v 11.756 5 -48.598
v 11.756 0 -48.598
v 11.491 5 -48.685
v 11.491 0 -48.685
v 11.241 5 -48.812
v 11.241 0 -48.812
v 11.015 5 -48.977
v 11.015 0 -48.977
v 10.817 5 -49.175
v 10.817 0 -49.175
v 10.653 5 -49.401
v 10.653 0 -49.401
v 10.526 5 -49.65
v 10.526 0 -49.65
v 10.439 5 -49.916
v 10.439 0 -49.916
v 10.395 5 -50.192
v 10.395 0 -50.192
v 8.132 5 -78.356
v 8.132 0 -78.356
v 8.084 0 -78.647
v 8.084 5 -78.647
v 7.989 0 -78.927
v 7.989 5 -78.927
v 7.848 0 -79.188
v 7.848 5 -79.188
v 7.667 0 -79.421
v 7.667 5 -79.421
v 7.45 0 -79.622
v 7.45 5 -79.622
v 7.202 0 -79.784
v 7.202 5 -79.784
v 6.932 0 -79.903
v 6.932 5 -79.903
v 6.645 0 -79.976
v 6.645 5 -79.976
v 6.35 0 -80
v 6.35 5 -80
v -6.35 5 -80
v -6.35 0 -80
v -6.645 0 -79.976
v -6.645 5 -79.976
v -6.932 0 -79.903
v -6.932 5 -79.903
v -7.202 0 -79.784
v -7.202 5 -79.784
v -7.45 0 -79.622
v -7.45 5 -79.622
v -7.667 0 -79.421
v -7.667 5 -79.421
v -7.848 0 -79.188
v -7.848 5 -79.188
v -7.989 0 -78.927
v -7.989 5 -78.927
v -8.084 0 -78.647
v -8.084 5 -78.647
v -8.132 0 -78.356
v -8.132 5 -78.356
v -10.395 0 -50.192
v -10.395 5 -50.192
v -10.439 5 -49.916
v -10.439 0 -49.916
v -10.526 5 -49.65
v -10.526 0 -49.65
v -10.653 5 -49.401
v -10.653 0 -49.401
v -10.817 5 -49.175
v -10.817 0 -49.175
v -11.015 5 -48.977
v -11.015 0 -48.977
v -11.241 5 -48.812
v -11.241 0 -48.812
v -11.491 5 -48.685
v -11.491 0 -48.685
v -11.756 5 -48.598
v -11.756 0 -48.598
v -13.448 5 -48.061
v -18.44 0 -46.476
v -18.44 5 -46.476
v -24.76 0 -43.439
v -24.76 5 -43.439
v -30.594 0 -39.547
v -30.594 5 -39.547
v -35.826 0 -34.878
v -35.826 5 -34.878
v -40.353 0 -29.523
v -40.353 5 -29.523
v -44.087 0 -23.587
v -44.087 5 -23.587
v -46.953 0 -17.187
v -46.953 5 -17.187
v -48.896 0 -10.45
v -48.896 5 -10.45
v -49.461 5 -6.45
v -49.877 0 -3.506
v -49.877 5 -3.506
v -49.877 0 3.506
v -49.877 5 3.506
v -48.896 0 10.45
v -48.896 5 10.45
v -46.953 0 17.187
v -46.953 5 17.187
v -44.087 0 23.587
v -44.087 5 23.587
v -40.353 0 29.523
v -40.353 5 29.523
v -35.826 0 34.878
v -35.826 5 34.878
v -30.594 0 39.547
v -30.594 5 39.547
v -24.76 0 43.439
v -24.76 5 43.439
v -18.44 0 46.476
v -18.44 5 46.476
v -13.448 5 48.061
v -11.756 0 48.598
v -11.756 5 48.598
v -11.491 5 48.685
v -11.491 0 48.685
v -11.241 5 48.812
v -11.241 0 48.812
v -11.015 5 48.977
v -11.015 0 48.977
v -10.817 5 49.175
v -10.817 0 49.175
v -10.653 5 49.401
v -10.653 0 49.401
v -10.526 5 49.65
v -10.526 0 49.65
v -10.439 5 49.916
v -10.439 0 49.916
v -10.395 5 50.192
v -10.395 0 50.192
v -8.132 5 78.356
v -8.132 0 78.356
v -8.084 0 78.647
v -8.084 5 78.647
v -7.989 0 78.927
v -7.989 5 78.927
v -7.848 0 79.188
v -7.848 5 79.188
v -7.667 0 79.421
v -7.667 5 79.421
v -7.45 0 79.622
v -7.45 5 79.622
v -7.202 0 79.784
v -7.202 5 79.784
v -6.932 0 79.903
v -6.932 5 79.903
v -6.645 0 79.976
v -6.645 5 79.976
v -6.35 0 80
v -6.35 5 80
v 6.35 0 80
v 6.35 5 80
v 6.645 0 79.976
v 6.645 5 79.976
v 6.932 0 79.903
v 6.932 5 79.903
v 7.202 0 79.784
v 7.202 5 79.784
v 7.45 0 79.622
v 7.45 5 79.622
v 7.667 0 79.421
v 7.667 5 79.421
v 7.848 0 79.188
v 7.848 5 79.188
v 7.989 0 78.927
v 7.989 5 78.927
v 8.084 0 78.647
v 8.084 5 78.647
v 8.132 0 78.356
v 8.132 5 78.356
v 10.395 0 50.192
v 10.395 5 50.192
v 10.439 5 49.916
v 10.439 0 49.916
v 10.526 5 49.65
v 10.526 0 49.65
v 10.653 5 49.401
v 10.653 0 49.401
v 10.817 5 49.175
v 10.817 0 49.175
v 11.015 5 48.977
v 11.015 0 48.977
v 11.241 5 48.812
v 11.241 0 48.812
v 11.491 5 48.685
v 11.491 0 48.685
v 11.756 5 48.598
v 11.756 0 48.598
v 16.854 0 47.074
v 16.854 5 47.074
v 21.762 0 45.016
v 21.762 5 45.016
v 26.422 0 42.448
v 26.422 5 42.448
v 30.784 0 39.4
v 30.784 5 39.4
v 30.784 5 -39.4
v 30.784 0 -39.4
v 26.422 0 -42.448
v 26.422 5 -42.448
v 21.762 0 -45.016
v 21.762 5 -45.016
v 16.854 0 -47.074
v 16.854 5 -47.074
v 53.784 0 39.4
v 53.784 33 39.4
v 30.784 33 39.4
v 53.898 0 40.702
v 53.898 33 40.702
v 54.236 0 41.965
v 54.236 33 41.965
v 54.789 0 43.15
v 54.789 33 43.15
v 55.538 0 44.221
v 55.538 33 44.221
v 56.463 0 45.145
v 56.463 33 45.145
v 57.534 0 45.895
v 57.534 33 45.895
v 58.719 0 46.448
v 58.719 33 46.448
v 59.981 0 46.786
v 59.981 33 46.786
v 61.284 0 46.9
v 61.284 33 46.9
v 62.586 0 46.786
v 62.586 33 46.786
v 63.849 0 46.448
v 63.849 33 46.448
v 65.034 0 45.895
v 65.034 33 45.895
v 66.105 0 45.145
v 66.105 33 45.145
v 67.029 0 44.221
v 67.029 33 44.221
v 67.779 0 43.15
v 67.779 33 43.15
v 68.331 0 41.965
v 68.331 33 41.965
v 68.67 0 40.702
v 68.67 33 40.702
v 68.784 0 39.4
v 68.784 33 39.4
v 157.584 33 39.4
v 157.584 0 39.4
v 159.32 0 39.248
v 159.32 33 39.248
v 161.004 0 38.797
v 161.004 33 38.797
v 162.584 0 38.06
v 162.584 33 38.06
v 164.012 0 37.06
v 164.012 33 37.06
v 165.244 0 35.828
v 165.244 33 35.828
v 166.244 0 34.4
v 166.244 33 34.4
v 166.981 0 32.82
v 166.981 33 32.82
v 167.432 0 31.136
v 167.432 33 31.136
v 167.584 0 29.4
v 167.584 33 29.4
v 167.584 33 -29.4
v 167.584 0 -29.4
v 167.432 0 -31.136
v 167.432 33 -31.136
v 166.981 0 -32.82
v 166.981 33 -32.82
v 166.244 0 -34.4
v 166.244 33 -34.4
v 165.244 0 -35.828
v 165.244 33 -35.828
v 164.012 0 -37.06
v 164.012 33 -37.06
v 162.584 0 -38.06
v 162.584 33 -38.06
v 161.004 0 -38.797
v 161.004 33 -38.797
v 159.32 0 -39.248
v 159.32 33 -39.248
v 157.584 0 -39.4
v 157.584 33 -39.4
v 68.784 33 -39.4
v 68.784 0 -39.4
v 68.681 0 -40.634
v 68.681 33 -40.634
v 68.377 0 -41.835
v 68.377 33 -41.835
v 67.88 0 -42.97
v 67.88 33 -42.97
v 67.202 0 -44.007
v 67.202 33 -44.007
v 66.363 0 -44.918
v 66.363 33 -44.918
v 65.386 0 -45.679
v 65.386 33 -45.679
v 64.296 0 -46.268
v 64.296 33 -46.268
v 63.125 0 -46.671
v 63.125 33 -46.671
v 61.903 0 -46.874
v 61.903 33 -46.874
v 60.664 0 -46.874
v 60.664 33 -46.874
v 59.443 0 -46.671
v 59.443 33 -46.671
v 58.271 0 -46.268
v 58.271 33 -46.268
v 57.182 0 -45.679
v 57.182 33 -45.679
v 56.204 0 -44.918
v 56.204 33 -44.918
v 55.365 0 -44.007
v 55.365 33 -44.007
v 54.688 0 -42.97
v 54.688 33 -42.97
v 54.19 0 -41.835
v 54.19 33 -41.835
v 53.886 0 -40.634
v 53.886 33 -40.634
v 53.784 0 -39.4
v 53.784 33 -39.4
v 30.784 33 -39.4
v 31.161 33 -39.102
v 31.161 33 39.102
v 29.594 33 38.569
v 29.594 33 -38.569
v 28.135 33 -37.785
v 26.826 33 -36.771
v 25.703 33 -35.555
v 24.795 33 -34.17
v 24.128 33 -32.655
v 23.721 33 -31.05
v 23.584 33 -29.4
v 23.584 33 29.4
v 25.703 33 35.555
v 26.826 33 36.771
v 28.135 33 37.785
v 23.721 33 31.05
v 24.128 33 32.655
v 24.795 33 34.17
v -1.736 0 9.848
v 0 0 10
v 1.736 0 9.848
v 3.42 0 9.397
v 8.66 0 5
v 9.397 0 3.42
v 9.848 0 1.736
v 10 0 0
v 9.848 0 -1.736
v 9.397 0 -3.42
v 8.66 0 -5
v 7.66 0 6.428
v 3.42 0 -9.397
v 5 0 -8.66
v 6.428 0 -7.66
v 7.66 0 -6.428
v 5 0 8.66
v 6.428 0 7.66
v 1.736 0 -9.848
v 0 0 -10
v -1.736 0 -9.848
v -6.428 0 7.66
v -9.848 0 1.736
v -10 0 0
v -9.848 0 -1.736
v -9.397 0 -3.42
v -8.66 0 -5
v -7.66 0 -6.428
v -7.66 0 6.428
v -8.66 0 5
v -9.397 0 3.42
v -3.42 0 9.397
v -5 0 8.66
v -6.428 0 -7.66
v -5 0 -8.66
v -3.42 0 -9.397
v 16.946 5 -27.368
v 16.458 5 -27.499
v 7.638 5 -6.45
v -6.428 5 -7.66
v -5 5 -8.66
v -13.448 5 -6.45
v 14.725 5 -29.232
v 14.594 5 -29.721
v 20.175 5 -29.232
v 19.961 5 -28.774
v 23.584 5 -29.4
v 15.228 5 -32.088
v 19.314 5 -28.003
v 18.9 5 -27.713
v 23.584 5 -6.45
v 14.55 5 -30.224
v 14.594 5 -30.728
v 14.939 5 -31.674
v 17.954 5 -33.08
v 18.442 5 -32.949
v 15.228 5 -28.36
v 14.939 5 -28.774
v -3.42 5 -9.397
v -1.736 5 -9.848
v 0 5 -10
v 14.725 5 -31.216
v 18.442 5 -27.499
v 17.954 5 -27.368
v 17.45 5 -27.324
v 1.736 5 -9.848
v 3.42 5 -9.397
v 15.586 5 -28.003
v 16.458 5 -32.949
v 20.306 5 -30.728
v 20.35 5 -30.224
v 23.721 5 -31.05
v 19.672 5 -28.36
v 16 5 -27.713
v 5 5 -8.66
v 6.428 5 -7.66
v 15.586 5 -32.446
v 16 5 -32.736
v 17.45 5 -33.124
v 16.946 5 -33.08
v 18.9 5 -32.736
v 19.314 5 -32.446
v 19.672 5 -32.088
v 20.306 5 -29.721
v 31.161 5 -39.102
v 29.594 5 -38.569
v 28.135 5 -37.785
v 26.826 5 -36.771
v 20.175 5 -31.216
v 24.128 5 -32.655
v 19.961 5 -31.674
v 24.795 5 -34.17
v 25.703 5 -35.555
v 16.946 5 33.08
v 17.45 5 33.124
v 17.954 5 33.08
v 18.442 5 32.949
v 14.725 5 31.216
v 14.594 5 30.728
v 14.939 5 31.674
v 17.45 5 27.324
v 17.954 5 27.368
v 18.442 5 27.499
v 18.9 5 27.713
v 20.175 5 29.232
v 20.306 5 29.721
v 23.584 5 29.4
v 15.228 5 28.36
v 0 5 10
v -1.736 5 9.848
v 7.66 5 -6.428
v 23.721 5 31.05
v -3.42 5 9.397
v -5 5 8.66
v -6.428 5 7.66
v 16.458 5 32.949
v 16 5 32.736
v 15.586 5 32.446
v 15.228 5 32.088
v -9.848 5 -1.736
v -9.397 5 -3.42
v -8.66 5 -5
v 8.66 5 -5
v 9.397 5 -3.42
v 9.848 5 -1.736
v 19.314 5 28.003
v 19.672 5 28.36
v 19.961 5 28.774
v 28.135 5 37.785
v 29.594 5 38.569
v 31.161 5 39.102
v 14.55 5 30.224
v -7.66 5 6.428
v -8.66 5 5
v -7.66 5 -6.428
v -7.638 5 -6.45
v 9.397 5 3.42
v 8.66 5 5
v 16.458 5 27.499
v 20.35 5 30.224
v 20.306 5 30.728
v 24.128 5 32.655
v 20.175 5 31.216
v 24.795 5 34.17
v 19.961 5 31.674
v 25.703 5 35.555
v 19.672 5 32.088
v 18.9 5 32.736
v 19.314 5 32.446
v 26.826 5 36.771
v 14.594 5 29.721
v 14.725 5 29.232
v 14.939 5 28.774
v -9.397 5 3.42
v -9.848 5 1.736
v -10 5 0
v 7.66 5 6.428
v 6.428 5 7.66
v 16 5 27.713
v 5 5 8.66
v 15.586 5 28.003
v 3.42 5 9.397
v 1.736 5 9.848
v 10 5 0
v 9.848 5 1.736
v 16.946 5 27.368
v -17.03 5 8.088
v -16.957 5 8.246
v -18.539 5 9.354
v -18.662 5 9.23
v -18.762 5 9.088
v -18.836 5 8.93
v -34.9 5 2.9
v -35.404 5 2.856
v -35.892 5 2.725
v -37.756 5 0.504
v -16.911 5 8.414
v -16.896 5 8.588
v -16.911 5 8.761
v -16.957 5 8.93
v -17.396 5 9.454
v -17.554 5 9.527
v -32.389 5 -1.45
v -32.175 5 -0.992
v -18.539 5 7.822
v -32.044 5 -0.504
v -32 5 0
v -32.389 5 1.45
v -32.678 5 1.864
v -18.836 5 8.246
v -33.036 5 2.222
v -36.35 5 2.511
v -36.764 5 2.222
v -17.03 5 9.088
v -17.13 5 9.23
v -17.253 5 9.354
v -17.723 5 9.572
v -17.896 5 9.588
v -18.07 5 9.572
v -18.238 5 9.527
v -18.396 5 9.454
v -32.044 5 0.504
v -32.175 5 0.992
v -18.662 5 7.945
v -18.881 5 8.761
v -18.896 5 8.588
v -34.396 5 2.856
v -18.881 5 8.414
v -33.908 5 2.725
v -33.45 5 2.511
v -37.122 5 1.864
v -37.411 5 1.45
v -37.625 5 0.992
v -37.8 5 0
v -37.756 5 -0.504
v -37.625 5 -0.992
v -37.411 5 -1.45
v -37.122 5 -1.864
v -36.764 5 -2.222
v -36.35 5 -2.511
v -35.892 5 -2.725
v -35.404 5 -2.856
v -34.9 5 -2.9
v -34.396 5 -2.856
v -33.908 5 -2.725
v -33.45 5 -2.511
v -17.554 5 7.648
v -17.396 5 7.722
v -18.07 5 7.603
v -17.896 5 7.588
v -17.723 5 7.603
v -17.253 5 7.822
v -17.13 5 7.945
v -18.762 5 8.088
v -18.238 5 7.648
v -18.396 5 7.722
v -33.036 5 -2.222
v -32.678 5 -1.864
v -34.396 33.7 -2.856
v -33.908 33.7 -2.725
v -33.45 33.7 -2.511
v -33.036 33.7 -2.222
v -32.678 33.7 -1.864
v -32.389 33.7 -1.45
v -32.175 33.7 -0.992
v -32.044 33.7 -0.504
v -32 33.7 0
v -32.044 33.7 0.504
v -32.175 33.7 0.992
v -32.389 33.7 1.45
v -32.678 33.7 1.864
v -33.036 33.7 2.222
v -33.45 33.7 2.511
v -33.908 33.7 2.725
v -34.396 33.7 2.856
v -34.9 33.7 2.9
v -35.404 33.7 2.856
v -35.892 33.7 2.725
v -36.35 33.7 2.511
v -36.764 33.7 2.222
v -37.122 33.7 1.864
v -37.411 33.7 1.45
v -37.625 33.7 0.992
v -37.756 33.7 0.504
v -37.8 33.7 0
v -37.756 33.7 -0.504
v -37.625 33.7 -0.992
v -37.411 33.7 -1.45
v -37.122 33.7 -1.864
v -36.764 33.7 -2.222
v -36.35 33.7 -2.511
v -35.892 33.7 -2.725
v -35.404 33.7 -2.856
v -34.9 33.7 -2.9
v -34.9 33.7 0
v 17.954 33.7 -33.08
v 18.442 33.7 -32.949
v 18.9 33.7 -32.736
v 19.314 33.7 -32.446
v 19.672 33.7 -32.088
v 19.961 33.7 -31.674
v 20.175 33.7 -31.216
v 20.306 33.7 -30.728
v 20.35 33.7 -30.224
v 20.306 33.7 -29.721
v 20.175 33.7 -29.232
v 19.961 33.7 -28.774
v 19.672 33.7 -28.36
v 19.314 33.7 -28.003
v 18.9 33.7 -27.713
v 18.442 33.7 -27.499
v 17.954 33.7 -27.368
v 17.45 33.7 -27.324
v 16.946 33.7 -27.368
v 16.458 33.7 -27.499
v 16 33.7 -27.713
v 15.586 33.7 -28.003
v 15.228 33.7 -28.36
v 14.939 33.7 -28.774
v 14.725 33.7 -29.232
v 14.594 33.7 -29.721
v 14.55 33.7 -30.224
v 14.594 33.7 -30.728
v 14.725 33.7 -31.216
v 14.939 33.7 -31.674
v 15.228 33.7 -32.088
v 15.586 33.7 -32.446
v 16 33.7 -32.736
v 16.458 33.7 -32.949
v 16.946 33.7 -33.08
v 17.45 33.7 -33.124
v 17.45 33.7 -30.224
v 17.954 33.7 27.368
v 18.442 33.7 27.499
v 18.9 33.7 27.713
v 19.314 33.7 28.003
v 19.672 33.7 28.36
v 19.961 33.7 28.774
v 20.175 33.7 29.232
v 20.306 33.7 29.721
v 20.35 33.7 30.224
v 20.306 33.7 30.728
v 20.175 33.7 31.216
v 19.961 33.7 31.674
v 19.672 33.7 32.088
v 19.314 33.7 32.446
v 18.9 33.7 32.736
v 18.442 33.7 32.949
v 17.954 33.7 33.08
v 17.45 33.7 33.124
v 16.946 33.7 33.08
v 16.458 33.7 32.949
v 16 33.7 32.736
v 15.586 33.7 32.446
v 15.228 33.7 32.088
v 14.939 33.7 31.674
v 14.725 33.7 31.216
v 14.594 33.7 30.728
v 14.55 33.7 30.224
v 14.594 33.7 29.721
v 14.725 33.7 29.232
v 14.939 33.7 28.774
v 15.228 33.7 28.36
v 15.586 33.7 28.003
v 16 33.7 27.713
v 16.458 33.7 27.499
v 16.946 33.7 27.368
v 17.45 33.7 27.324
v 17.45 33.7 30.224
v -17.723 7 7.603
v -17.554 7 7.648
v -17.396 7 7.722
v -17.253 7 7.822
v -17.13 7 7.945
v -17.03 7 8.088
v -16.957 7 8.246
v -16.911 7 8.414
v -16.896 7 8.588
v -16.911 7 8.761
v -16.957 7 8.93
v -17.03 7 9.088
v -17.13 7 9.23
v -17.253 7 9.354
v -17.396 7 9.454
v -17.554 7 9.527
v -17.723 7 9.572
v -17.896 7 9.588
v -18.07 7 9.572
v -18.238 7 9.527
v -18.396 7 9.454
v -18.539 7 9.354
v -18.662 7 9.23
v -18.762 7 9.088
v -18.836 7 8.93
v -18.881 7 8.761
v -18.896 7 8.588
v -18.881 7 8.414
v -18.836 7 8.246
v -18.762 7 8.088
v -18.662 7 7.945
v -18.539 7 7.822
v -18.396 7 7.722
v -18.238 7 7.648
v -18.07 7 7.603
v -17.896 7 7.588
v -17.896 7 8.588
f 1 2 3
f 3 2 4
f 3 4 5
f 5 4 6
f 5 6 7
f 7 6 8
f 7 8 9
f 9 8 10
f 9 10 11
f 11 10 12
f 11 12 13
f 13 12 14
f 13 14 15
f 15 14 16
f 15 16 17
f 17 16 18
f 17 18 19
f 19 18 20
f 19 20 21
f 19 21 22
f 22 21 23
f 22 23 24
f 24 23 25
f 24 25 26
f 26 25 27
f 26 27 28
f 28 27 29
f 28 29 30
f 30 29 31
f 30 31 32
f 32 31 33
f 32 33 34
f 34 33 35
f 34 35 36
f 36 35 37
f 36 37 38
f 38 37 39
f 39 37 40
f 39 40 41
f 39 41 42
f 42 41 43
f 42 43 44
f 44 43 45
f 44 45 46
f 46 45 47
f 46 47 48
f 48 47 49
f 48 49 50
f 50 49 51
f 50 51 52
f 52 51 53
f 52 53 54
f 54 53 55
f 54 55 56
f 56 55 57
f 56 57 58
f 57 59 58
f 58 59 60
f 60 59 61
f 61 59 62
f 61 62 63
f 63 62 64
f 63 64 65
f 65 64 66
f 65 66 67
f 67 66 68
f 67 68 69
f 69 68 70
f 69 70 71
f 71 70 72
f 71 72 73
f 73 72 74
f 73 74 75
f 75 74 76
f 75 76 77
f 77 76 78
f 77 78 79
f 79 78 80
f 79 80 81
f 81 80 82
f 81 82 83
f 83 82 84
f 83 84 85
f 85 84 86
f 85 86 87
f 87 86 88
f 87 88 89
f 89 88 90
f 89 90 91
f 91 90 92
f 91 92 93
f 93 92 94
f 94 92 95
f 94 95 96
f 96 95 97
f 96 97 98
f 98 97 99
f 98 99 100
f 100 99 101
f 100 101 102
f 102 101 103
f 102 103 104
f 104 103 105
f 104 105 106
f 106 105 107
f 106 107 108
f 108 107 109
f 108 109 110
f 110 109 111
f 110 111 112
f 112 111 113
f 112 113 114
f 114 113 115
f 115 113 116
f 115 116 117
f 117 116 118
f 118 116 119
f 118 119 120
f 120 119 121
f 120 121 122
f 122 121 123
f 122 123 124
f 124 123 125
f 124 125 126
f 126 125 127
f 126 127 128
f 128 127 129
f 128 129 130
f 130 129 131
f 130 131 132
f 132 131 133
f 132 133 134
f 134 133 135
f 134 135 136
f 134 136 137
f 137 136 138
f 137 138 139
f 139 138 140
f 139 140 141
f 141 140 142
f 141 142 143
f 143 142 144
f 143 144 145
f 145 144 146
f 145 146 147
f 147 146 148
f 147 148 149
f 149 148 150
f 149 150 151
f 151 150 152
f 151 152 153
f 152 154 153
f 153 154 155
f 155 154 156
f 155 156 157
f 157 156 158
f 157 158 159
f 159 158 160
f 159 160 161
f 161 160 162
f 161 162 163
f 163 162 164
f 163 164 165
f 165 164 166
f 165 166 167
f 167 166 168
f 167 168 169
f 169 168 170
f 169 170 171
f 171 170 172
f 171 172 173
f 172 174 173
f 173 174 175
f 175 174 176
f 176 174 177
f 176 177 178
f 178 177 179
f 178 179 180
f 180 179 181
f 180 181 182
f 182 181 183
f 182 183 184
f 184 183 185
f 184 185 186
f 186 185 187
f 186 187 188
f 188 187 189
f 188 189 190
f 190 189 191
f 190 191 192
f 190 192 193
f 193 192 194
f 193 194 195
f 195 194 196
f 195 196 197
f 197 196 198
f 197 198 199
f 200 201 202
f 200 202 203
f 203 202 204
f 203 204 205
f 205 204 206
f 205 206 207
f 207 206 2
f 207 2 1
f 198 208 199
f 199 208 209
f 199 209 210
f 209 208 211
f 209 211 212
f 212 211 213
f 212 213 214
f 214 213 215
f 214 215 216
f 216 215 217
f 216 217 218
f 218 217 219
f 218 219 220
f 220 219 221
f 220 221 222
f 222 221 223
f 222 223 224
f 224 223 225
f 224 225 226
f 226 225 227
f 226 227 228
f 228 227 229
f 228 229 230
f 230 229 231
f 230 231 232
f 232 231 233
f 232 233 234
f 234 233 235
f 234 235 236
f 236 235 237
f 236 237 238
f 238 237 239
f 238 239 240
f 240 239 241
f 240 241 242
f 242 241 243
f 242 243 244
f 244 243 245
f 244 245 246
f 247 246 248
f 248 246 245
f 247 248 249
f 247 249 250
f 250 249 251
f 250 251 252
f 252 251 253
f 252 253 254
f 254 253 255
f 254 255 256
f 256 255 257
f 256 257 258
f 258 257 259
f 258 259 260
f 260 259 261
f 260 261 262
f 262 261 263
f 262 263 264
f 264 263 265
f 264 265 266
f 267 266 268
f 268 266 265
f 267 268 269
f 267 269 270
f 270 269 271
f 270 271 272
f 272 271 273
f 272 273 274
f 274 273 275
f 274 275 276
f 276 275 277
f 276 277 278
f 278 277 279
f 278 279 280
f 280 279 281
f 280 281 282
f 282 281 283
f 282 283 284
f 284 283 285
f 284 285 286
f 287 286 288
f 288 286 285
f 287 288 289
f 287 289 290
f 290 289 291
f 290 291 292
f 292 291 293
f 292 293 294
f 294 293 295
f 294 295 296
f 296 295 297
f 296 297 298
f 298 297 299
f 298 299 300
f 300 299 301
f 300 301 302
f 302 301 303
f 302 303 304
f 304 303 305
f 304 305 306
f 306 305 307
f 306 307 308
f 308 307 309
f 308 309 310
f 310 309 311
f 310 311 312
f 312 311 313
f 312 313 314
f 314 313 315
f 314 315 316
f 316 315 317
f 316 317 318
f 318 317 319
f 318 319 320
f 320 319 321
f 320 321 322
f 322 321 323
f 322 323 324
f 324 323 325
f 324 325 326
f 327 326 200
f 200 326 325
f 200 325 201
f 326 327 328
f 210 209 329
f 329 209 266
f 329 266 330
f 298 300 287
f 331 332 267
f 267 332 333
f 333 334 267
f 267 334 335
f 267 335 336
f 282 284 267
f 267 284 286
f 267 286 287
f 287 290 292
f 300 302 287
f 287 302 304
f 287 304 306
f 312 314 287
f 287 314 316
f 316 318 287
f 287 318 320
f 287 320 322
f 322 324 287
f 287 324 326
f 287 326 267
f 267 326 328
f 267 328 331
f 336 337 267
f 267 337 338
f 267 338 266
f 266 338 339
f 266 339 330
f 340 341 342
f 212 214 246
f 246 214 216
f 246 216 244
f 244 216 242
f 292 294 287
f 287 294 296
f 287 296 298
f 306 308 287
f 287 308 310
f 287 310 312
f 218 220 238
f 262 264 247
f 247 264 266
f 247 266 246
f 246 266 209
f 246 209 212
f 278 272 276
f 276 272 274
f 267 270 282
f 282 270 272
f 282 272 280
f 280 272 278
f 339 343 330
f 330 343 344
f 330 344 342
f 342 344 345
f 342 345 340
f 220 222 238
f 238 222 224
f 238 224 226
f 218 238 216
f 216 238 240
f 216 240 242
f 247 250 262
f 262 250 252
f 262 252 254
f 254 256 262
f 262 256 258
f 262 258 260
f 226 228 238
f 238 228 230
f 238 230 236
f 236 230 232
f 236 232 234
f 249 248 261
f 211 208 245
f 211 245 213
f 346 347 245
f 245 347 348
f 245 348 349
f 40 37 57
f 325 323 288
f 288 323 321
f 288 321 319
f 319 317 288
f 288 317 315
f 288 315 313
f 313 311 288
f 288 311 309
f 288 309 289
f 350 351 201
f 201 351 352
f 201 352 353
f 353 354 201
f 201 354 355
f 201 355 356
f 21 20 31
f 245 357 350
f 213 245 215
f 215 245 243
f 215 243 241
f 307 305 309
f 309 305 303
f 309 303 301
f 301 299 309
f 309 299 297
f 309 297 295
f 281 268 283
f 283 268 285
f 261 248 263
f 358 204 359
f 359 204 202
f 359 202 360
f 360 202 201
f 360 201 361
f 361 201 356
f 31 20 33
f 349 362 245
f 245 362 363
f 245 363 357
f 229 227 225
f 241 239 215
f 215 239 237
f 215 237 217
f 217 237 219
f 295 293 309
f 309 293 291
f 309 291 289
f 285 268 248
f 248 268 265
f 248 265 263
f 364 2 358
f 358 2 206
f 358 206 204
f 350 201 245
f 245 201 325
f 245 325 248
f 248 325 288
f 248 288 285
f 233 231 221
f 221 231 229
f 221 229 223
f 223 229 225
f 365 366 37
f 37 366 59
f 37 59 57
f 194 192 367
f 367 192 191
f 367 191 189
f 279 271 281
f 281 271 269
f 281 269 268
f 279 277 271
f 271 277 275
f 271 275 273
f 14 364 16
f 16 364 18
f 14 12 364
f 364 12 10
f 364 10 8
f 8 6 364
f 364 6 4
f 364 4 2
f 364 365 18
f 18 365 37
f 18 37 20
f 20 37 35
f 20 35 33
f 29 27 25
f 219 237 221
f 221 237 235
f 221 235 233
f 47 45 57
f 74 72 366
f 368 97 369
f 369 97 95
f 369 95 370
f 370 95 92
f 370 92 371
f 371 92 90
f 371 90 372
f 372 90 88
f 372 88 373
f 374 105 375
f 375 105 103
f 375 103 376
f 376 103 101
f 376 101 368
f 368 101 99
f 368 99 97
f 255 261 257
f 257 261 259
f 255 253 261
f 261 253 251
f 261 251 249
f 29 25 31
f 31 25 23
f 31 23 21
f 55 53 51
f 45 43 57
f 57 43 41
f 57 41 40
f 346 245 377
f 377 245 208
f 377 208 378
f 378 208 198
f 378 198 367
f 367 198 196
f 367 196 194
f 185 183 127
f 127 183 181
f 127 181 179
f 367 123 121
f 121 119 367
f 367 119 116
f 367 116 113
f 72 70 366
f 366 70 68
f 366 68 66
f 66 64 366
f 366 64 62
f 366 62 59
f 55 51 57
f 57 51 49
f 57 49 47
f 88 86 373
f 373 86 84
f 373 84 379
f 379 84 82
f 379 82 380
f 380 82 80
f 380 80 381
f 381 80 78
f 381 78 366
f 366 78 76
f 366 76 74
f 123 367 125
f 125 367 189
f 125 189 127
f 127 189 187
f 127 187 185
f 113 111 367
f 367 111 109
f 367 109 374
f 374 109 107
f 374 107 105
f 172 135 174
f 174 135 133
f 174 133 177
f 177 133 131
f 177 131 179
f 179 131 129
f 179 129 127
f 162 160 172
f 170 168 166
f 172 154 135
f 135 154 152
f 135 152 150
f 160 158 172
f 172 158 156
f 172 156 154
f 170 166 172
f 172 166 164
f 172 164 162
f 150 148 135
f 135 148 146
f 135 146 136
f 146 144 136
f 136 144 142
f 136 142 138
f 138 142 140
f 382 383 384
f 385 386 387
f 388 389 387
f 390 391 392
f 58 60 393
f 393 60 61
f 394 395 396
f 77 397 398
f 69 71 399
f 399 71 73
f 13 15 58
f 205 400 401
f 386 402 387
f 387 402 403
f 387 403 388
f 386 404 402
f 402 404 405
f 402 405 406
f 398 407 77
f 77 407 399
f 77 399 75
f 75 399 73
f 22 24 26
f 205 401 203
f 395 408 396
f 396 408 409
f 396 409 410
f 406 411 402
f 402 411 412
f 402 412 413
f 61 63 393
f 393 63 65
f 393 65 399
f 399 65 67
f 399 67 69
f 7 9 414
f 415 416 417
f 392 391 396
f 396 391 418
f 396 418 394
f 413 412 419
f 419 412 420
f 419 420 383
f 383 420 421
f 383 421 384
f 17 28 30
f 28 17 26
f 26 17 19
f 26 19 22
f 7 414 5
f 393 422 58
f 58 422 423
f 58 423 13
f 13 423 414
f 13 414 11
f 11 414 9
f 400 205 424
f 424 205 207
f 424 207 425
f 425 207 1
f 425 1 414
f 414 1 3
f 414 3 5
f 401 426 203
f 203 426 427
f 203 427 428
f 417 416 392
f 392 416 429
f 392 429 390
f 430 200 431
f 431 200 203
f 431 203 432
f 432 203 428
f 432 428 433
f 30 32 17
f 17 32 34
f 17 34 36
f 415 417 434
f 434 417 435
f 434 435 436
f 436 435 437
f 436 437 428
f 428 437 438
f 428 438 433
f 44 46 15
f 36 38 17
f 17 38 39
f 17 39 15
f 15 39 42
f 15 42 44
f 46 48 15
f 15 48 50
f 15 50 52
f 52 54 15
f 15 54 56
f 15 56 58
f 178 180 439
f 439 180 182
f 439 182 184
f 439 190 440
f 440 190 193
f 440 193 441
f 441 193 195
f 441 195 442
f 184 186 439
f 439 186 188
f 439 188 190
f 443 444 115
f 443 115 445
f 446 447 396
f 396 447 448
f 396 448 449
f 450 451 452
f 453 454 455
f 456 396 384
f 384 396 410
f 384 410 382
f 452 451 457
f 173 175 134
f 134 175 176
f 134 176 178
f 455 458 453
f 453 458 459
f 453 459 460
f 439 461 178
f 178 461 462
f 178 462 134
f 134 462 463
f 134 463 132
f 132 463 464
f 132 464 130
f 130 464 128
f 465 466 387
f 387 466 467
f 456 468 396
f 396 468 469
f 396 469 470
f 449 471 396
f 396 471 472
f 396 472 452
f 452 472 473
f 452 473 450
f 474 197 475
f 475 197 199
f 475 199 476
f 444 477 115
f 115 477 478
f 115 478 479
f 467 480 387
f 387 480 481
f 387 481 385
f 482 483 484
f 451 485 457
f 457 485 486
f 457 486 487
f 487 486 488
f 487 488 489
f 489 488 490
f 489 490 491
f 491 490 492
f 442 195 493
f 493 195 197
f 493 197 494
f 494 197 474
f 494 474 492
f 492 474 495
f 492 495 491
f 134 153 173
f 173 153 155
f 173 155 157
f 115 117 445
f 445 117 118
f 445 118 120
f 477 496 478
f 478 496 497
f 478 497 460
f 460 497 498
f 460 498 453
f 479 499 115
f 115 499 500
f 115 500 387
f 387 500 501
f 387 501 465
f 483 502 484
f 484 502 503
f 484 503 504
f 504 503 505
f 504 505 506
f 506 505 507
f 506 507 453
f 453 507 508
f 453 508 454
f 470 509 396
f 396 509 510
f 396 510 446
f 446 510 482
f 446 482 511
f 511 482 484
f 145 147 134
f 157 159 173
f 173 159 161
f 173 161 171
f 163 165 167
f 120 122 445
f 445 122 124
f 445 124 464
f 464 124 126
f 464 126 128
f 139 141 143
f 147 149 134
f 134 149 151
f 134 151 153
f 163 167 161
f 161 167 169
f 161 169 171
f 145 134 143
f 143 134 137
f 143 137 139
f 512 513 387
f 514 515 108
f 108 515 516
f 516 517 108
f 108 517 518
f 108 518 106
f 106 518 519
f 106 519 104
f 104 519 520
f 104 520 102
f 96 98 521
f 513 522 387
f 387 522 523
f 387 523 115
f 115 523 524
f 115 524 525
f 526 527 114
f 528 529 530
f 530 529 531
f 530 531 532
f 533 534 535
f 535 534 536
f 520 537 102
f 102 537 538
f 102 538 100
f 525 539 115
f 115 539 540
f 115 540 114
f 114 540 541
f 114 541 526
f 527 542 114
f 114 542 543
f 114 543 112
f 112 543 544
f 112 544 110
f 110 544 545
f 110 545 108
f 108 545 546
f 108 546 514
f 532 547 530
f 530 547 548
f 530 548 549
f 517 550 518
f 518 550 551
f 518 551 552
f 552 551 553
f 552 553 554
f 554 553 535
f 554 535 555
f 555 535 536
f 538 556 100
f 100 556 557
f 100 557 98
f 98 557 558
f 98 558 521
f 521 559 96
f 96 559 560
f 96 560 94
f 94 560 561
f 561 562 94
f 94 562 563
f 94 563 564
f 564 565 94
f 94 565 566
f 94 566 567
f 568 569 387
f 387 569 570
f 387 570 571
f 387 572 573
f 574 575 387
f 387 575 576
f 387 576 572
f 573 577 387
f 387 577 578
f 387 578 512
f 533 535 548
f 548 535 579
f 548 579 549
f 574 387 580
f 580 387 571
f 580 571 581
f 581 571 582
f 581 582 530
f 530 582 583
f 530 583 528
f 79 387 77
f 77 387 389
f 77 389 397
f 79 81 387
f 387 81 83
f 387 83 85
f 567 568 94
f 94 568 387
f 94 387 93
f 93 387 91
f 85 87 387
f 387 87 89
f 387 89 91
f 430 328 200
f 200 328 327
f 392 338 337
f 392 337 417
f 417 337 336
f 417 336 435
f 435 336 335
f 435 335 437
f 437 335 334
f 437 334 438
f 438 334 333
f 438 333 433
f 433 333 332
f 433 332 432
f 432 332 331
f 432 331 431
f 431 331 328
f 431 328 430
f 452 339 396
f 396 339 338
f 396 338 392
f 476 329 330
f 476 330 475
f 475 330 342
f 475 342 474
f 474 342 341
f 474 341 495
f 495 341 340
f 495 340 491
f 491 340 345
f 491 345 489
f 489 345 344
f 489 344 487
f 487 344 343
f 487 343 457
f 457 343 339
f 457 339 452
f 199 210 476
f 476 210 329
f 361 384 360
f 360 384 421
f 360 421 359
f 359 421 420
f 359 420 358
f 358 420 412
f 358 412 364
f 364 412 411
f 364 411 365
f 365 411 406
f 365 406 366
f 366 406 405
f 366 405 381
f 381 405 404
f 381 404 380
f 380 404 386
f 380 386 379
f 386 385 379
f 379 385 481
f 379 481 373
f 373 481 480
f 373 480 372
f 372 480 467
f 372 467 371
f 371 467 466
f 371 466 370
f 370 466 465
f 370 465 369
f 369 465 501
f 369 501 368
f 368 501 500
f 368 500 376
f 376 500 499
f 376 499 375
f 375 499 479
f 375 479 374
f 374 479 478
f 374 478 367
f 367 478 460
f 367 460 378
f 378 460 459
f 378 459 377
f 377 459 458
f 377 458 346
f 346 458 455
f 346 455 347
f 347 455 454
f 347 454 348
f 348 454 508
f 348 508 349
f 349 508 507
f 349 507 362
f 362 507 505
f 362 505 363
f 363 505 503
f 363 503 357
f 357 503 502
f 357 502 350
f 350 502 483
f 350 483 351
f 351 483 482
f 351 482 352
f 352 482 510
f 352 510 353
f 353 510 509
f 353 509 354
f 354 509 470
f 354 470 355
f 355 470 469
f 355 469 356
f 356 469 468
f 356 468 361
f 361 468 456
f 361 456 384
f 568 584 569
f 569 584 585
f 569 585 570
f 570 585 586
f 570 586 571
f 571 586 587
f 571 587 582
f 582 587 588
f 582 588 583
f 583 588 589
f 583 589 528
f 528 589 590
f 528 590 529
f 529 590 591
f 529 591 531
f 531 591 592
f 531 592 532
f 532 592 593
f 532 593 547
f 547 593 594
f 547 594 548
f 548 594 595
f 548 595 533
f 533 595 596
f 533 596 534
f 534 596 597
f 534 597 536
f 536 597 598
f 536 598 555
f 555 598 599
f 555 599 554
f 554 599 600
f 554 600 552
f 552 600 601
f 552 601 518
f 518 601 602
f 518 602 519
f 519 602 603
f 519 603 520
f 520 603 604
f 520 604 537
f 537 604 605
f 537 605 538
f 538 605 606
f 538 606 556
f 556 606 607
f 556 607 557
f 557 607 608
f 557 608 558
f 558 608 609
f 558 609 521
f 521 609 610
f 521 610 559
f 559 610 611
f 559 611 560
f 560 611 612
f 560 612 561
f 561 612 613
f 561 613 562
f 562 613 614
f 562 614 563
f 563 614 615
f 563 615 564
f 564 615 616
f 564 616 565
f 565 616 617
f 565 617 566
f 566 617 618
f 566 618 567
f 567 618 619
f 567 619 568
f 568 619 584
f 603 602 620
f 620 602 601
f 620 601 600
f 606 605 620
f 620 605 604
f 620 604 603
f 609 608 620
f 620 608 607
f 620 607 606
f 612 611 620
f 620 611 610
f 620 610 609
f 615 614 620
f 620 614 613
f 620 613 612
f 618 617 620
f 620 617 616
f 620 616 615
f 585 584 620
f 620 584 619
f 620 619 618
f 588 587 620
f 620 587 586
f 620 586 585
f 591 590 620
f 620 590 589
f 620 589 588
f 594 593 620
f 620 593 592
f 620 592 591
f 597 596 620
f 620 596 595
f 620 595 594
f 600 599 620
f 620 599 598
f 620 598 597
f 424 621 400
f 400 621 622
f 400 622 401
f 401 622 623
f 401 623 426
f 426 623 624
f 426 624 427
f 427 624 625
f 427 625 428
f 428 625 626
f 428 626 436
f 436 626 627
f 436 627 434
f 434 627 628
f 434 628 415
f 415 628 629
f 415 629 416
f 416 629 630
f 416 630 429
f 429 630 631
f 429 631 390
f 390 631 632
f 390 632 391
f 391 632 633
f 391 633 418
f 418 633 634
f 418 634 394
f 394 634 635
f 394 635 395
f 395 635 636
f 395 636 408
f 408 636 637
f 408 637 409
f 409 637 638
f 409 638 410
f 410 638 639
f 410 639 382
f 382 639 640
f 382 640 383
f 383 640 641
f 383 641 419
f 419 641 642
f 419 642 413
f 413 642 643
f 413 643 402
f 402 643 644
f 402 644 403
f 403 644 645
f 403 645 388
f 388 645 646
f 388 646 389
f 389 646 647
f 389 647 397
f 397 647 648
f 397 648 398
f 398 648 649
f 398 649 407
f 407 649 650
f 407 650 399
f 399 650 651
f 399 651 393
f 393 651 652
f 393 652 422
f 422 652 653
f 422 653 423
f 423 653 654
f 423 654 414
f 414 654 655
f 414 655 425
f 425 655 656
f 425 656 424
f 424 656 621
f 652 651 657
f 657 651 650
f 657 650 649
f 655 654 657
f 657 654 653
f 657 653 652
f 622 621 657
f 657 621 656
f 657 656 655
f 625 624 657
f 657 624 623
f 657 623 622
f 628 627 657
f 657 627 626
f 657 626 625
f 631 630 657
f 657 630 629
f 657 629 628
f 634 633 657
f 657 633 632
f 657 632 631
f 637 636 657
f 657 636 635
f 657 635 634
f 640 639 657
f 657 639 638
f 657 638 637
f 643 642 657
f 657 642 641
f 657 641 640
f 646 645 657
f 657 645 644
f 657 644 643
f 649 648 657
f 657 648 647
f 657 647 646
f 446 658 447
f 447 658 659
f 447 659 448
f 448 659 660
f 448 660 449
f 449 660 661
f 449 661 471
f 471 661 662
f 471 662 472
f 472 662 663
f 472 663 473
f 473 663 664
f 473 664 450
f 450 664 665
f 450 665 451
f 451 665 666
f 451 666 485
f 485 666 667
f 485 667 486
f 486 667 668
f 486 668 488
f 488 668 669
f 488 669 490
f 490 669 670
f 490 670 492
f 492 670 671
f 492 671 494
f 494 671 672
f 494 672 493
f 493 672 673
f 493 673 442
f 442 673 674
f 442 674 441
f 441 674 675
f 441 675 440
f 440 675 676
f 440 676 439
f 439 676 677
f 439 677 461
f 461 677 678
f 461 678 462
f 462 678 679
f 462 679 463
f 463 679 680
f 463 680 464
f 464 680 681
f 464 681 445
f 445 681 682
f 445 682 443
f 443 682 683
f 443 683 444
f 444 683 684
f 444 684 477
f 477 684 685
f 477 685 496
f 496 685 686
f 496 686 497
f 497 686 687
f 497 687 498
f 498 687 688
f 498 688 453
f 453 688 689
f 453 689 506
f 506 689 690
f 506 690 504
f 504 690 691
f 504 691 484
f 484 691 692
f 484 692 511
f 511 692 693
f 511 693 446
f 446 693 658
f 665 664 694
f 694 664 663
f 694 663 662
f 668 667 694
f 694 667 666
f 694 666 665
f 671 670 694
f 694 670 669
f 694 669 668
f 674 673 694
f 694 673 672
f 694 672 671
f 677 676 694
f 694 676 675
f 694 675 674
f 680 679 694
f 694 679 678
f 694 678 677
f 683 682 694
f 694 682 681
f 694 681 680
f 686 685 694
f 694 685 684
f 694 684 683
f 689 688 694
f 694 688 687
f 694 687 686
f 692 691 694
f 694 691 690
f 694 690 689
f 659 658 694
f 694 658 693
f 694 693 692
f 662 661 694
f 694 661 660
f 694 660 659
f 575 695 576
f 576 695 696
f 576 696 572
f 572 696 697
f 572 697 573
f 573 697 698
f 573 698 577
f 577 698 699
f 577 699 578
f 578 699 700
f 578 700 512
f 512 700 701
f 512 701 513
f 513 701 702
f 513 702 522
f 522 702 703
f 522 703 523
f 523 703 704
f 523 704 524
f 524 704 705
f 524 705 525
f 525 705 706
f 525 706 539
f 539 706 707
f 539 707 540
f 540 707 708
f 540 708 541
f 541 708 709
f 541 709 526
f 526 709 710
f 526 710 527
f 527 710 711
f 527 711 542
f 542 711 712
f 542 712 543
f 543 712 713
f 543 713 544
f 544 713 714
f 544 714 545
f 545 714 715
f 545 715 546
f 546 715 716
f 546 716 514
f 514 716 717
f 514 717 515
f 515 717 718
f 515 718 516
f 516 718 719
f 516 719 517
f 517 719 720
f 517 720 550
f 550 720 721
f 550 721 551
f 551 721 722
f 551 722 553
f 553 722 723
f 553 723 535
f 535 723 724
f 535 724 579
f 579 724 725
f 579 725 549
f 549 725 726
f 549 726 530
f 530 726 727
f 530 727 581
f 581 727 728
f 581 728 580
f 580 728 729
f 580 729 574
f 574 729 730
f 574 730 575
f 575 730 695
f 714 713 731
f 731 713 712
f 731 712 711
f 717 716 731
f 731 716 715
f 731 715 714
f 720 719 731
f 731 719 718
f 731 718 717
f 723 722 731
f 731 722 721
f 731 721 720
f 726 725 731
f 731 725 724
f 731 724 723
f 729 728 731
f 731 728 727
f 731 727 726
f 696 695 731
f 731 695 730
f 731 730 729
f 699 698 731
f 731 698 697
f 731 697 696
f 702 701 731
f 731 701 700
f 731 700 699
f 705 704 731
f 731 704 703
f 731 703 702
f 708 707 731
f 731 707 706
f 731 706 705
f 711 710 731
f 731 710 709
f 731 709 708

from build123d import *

# Parameters (mm, degrees)
BOSS_EXTRUDE2_DEPTH = 33
CUT_EXTRUDE1_DEPTH  = 28
SKETCH3_R           = 10
CUT_EXTRUDE2_DEPTH  = 6
SKETCH5_R           = 2.9
BOSS_EXTRUDE3_DEPTH = 28.7
CIRPATTERN1_COUNT   = 3
SKETCH6_R           = 1
BOSS_EXTRUDE4_DEPTH = 2


with BuildPart() as part:
    # Sketch1 → Boss-Extrude2 (new body)
    with BuildSketch(Plane(origin=(0, 0, 0), x_dir=(1, 0, 0), z_dir=(0, 1, 0))):
        with BuildLine():
            Line((68.783761953, -39.4), (157.583761953, -39.4))
            ThreePointArc((157.583761953, -39.4), (164.654829765, -36.471067812), (167.583761953, -29.4))
            Line((167.583761953, -29.4), (167.583761953, 29.4))
            ThreePointArc((167.583761953, 29.4), (164.654829765, 36.471067812), (157.583761953, 39.4))
            Line((157.583761953, 39.4), (68.783761953, 39.4))
            ThreePointArc((68.783761953, 39.4), (61.283761953, 46.9), (53.783761953, 39.4))
            Line((53.783761953, 39.4), (30.783761953, 39.4))
            ThreePointArc((30.783761953, 39.4), (21.761629353, 45.015902611), (11.75641742, 48.598216525))
            ThreePointArc((11.75641742, 48.598216525), (10.817431593, 49.174777372), (10.394956543, 50.192437248))
            Line((10.394956543, 50.192437248), (8.132117785, 78.35566571))
            ThreePointArc((8.132117785, 78.35566571), (7.562644675, 79.526094921), (6.350366597, 80))
            Line((6.350366597, 80), (-6.350366597, 80))
            ThreePointArc((-6.350366597, 80), (-7.562644675, 79.526094921), (-8.132117785, 78.35566571))
            Line((-8.132117785, 78.35566571), (-10.394956543, 50.192437248))
            ThreePointArc((-10.394956543, 50.192437248), (-10.817431593, 49.174777372), (-11.75641742, 48.598216525))
            ThreePointArc((-11.75641742, 48.598216525), (-50, 0), (-11.75641742, -48.598216525))
            ThreePointArc((-11.75641742, -48.598216525), (-10.817431593, -49.174777372), (-10.394956543, -50.192437248))
            Line((-10.394956543, -50.192437248), (-8.132117785, -78.35566571))
            ThreePointArc((-8.132117785, -78.35566571), (-7.562644675, -79.526094921), (-6.350366597, -80))
            Line((-6.350366597, -80), (6.350366597, -80))
            ThreePointArc((6.350366597, -80), (7.562644675, -79.526094921), (8.132117785, -78.35566571))
            Line((8.132117785, -78.35566571), (10.394956543, -50.192437248))
            ThreePointArc((10.394956543, -50.192437248), (10.817431593, -49.174777372), (11.75641742, -48.598216525))
            ThreePointArc((11.75641742, -48.598216525), (21.761629353, -45.015902611), (30.783761953, -39.4))
            Line((30.783761953, -39.4), (53.783761953, -39.4))
            ThreePointArc((53.783761953, -39.4), (61.283761953, -46.9), (68.783761953, -39.4))
        make_face()
    extrude(amount=BOSS_EXTRUDE2_DEPTH)

    # Sketch2 → Cut-Extrude1 (cut)
    with BuildSketch(Plane(origin=(0, 33, 0), x_dir=(1, 0, 0), z_dir=(0, 1, 0))):
        with BuildLine():
            Line((23.583761953, 29.4), (23.583761953, -29.4))
            ThreePointArc((23.583761953, -29.4), (25.702607781, -35.555274886), (31.161243737, -39.102134069))
            ThreePointArc((31.161243737, -39.102134069), (22.770762082, -44.513957297), (13.472291615, -48.150777342))
            Line((13.472291615, -48.150777342), (13.472291615, -85.250601705))
            Line((13.472291615, -85.250601705), (-13.472291615, -85.250601705))
            Line((-13.472291615, -85.250601705), (-13.472291615, -48.150777342))
            ThreePointArc((-13.472291615, -48.150777342), (-50, 0), (-13.472291615, 48.150777342))
            Line((-13.472291615, 48.150777342), (-13.472291615, 85.250601705))
            Line((-13.472291615, 85.250601705), (13.472291615, 85.250601705))
            Line((13.472291615, 85.250601705), (13.472291615, 48.150777342))
            ThreePointArc((13.472291615, 48.150777342), (22.770762082, 44.513957297), (31.161243737, 39.102134069))
            ThreePointArc((31.161243737, 39.102134069), (25.702607781, 35.555274886), (23.583761953, 29.4))
        make_face()
    extrude(amount=-CUT_EXTRUDE1_DEPTH, mode=Mode.SUBTRACT)

    # Sketch3 → Cut-Extrude2 (cut, through all)
    with BuildSketch(Plane(origin=(0, 5, 0), x_dir=(1, 0, 0), z_dir=(0, 1, 0))):
        Circle(SKETCH3_R)
    extrude(amount=-CUT_EXTRUDE2_DEPTH, mode=Mode.SUBTRACT)

    # Sketch5 → Boss-Extrude3 (add)
    with BuildSketch(Plane(origin=(0, 5, 0), x_dir=(1, 0, 0), z_dir=(0, 1, 0))):
        with Locations((-34.9, 0)):
            Circle(SKETCH5_R)
    boss_extrude3 = extrude(amount=BOSS_EXTRUDE3_DEPTH)

    # CirPattern1: Boss-Extrude3 ×3 about axis
    cirpattern1_axis = Axis((0, 0, 0), (0, 1, 0))
    for i in range(1, CIRPATTERN1_COUNT):
        add(boss_extrude3.rotate(cirpattern1_axis, i * 360 / CIRPATTERN1_COUNT))

    # Sketch6 → Boss-Extrude4 (add)
    with BuildSketch(Plane(origin=(0, 5, 0), x_dir=(1, 0, 0), z_dir=(0, 1, 0))):
        with Locations((-17.896238047, -8.587616886)):
            Circle(SKETCH6_R)
    extrude(amount=BOSS_EXTRUDE4_DEPTH)


solid = part.part
